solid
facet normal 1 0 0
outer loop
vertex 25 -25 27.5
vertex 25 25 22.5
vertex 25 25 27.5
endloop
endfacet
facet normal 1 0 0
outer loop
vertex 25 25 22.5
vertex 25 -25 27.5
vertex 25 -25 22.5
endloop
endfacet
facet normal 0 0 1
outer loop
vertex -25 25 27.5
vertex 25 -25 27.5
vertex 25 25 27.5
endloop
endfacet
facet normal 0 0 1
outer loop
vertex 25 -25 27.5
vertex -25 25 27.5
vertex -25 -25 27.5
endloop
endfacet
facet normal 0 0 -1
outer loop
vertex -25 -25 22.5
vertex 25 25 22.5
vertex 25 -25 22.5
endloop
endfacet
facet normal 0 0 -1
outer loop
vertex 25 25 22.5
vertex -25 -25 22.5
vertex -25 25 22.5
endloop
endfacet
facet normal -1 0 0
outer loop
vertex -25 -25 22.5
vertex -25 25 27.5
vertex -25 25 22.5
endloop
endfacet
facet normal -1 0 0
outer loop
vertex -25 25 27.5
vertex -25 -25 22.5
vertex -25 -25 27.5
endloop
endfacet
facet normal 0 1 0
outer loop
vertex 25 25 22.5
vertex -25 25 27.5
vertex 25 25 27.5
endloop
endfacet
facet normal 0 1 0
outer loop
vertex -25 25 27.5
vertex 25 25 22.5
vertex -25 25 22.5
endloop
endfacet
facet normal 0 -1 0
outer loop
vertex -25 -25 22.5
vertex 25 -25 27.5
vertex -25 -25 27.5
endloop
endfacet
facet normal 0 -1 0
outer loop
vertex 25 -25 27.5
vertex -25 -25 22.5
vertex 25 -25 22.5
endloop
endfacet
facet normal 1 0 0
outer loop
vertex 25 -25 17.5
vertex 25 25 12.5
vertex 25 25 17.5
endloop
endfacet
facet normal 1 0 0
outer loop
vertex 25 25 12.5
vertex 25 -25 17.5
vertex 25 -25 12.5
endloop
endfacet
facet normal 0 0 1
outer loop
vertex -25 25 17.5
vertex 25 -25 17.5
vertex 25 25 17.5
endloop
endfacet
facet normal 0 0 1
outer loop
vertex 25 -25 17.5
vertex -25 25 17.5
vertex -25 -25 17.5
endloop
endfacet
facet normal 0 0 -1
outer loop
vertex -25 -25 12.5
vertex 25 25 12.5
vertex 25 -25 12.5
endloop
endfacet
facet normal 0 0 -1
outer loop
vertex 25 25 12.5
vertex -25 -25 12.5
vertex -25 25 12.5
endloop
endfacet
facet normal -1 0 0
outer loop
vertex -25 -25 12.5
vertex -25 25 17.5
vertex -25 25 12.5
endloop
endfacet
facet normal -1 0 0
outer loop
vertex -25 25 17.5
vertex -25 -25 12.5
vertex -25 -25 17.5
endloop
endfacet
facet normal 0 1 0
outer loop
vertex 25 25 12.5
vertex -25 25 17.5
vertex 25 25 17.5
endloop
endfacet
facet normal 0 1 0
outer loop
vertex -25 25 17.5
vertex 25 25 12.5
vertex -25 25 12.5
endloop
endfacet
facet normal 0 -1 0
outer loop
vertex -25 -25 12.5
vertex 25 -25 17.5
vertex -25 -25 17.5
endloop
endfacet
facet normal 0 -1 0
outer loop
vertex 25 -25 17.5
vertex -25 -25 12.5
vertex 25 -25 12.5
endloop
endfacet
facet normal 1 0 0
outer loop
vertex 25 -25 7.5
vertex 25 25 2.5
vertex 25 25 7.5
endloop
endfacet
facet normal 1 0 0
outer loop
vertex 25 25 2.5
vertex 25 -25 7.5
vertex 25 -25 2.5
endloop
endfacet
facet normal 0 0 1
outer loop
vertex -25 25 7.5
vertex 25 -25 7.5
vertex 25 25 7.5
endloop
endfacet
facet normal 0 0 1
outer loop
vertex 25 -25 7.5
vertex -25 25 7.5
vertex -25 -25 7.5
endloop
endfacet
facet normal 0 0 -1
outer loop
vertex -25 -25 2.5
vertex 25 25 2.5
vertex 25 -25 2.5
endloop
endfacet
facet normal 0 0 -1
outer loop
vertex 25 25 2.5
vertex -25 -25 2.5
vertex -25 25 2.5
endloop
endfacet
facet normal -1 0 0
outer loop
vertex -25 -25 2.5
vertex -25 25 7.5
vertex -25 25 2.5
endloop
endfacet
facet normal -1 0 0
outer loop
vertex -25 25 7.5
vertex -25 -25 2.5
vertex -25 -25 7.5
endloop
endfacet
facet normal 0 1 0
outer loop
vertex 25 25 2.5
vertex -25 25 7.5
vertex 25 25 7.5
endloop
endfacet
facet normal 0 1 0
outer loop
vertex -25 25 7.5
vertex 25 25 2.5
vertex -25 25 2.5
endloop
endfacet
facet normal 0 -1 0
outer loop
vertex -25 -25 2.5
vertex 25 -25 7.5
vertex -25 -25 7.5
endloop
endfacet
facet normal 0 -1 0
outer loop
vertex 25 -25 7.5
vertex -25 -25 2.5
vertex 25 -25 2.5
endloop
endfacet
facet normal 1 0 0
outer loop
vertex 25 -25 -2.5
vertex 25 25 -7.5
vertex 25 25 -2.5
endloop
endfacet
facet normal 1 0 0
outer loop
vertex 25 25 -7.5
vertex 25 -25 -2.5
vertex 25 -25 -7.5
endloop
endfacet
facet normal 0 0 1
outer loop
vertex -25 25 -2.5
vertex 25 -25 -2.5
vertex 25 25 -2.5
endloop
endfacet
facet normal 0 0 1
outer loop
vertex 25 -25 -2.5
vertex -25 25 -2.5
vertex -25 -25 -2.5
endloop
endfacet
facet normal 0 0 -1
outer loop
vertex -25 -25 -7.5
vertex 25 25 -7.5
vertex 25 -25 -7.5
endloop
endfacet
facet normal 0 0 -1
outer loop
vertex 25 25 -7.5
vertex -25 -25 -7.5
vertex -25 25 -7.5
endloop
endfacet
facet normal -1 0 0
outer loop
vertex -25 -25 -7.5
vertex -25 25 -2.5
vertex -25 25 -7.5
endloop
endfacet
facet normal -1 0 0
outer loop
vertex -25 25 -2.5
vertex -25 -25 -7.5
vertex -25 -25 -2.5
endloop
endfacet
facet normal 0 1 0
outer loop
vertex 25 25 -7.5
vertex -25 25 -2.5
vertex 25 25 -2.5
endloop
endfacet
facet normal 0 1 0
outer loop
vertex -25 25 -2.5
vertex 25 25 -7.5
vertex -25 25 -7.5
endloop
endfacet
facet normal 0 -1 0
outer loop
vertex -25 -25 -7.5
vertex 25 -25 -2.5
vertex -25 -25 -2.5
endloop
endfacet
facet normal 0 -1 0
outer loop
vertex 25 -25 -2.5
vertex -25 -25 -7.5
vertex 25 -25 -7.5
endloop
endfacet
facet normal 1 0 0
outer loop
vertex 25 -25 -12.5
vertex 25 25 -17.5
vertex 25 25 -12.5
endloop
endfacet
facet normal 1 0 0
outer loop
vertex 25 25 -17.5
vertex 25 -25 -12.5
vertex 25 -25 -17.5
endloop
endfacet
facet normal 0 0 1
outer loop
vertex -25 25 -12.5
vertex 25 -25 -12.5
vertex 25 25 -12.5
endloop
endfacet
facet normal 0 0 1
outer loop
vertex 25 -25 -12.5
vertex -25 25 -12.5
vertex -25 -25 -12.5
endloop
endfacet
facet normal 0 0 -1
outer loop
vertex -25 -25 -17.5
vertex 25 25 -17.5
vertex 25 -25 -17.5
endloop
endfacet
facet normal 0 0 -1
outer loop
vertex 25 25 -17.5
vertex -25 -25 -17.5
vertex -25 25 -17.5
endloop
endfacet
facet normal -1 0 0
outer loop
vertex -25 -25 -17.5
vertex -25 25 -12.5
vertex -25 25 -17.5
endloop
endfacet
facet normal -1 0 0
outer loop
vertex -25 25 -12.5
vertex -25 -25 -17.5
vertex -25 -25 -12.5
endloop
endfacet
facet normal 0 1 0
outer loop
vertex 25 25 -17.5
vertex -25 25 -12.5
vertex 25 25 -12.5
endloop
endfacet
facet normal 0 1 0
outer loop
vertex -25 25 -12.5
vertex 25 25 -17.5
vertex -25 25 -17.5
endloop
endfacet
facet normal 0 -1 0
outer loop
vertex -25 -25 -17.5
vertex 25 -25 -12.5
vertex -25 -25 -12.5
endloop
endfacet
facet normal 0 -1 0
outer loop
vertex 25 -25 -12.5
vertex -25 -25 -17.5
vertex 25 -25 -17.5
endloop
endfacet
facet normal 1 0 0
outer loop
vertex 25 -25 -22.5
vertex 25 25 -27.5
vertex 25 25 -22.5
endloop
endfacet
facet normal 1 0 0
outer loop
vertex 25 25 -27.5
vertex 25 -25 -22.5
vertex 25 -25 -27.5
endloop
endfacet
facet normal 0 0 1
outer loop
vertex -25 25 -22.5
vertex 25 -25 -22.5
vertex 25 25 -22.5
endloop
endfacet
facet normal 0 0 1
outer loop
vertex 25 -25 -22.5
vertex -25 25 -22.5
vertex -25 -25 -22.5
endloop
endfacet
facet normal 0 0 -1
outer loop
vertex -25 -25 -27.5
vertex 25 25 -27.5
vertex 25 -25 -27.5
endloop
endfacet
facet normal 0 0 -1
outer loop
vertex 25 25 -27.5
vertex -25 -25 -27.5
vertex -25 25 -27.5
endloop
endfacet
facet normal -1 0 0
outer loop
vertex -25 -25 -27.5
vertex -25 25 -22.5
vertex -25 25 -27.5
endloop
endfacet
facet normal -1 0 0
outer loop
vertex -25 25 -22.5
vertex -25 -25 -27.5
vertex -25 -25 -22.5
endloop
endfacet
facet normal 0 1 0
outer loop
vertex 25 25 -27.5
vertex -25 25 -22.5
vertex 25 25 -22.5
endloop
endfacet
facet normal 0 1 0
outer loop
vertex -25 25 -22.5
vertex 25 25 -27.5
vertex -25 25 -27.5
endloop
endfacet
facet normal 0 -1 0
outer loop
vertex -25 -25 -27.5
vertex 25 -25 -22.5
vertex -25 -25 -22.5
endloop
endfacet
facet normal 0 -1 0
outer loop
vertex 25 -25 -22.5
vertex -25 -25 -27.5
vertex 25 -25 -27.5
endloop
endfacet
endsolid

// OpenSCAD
// Parameters for the flat plates
plate_width = 50;  // Width of the plate
plate_length = 50; // Length of the plate
plate_thickness = 5; // Thickness of the plate
plate_spacing = 10; // Spacing between plates

// Function to create a flat plate
module flat_plate() {
    cube([plate_width, plate_length, plate_thickness], center = true);
}

// Assembly of the flexible coupling
module flexible_coupling() {
    // Layer 1: Topmost flat plate
    translate([0, 0, plate_spacing * 2.5])
        flat_plate();

    // Layer 2: Second flat plate
    translate([0, 0, plate_spacing * 1.5])
        flat_plate();

    // Layer 3: Third flat plate
    translate([0, 0, plate_spacing * 0.5])
        flat_plate();

    // Layer 4: Fourth flat plate
    translate([0, 0, -plate_spacing * 0.5])
        flat_plate();

    // Layer 5: Fifth flat plate
    translate([0, 0, -plate_spacing * 1.5])
        flat_plate();

    // Layer 6: Bottommost flat plate
    translate([0, 0, -plate_spacing * 2.5])
        flat_plate();
}

// Render the flexible coupling
flexible_coupling();
